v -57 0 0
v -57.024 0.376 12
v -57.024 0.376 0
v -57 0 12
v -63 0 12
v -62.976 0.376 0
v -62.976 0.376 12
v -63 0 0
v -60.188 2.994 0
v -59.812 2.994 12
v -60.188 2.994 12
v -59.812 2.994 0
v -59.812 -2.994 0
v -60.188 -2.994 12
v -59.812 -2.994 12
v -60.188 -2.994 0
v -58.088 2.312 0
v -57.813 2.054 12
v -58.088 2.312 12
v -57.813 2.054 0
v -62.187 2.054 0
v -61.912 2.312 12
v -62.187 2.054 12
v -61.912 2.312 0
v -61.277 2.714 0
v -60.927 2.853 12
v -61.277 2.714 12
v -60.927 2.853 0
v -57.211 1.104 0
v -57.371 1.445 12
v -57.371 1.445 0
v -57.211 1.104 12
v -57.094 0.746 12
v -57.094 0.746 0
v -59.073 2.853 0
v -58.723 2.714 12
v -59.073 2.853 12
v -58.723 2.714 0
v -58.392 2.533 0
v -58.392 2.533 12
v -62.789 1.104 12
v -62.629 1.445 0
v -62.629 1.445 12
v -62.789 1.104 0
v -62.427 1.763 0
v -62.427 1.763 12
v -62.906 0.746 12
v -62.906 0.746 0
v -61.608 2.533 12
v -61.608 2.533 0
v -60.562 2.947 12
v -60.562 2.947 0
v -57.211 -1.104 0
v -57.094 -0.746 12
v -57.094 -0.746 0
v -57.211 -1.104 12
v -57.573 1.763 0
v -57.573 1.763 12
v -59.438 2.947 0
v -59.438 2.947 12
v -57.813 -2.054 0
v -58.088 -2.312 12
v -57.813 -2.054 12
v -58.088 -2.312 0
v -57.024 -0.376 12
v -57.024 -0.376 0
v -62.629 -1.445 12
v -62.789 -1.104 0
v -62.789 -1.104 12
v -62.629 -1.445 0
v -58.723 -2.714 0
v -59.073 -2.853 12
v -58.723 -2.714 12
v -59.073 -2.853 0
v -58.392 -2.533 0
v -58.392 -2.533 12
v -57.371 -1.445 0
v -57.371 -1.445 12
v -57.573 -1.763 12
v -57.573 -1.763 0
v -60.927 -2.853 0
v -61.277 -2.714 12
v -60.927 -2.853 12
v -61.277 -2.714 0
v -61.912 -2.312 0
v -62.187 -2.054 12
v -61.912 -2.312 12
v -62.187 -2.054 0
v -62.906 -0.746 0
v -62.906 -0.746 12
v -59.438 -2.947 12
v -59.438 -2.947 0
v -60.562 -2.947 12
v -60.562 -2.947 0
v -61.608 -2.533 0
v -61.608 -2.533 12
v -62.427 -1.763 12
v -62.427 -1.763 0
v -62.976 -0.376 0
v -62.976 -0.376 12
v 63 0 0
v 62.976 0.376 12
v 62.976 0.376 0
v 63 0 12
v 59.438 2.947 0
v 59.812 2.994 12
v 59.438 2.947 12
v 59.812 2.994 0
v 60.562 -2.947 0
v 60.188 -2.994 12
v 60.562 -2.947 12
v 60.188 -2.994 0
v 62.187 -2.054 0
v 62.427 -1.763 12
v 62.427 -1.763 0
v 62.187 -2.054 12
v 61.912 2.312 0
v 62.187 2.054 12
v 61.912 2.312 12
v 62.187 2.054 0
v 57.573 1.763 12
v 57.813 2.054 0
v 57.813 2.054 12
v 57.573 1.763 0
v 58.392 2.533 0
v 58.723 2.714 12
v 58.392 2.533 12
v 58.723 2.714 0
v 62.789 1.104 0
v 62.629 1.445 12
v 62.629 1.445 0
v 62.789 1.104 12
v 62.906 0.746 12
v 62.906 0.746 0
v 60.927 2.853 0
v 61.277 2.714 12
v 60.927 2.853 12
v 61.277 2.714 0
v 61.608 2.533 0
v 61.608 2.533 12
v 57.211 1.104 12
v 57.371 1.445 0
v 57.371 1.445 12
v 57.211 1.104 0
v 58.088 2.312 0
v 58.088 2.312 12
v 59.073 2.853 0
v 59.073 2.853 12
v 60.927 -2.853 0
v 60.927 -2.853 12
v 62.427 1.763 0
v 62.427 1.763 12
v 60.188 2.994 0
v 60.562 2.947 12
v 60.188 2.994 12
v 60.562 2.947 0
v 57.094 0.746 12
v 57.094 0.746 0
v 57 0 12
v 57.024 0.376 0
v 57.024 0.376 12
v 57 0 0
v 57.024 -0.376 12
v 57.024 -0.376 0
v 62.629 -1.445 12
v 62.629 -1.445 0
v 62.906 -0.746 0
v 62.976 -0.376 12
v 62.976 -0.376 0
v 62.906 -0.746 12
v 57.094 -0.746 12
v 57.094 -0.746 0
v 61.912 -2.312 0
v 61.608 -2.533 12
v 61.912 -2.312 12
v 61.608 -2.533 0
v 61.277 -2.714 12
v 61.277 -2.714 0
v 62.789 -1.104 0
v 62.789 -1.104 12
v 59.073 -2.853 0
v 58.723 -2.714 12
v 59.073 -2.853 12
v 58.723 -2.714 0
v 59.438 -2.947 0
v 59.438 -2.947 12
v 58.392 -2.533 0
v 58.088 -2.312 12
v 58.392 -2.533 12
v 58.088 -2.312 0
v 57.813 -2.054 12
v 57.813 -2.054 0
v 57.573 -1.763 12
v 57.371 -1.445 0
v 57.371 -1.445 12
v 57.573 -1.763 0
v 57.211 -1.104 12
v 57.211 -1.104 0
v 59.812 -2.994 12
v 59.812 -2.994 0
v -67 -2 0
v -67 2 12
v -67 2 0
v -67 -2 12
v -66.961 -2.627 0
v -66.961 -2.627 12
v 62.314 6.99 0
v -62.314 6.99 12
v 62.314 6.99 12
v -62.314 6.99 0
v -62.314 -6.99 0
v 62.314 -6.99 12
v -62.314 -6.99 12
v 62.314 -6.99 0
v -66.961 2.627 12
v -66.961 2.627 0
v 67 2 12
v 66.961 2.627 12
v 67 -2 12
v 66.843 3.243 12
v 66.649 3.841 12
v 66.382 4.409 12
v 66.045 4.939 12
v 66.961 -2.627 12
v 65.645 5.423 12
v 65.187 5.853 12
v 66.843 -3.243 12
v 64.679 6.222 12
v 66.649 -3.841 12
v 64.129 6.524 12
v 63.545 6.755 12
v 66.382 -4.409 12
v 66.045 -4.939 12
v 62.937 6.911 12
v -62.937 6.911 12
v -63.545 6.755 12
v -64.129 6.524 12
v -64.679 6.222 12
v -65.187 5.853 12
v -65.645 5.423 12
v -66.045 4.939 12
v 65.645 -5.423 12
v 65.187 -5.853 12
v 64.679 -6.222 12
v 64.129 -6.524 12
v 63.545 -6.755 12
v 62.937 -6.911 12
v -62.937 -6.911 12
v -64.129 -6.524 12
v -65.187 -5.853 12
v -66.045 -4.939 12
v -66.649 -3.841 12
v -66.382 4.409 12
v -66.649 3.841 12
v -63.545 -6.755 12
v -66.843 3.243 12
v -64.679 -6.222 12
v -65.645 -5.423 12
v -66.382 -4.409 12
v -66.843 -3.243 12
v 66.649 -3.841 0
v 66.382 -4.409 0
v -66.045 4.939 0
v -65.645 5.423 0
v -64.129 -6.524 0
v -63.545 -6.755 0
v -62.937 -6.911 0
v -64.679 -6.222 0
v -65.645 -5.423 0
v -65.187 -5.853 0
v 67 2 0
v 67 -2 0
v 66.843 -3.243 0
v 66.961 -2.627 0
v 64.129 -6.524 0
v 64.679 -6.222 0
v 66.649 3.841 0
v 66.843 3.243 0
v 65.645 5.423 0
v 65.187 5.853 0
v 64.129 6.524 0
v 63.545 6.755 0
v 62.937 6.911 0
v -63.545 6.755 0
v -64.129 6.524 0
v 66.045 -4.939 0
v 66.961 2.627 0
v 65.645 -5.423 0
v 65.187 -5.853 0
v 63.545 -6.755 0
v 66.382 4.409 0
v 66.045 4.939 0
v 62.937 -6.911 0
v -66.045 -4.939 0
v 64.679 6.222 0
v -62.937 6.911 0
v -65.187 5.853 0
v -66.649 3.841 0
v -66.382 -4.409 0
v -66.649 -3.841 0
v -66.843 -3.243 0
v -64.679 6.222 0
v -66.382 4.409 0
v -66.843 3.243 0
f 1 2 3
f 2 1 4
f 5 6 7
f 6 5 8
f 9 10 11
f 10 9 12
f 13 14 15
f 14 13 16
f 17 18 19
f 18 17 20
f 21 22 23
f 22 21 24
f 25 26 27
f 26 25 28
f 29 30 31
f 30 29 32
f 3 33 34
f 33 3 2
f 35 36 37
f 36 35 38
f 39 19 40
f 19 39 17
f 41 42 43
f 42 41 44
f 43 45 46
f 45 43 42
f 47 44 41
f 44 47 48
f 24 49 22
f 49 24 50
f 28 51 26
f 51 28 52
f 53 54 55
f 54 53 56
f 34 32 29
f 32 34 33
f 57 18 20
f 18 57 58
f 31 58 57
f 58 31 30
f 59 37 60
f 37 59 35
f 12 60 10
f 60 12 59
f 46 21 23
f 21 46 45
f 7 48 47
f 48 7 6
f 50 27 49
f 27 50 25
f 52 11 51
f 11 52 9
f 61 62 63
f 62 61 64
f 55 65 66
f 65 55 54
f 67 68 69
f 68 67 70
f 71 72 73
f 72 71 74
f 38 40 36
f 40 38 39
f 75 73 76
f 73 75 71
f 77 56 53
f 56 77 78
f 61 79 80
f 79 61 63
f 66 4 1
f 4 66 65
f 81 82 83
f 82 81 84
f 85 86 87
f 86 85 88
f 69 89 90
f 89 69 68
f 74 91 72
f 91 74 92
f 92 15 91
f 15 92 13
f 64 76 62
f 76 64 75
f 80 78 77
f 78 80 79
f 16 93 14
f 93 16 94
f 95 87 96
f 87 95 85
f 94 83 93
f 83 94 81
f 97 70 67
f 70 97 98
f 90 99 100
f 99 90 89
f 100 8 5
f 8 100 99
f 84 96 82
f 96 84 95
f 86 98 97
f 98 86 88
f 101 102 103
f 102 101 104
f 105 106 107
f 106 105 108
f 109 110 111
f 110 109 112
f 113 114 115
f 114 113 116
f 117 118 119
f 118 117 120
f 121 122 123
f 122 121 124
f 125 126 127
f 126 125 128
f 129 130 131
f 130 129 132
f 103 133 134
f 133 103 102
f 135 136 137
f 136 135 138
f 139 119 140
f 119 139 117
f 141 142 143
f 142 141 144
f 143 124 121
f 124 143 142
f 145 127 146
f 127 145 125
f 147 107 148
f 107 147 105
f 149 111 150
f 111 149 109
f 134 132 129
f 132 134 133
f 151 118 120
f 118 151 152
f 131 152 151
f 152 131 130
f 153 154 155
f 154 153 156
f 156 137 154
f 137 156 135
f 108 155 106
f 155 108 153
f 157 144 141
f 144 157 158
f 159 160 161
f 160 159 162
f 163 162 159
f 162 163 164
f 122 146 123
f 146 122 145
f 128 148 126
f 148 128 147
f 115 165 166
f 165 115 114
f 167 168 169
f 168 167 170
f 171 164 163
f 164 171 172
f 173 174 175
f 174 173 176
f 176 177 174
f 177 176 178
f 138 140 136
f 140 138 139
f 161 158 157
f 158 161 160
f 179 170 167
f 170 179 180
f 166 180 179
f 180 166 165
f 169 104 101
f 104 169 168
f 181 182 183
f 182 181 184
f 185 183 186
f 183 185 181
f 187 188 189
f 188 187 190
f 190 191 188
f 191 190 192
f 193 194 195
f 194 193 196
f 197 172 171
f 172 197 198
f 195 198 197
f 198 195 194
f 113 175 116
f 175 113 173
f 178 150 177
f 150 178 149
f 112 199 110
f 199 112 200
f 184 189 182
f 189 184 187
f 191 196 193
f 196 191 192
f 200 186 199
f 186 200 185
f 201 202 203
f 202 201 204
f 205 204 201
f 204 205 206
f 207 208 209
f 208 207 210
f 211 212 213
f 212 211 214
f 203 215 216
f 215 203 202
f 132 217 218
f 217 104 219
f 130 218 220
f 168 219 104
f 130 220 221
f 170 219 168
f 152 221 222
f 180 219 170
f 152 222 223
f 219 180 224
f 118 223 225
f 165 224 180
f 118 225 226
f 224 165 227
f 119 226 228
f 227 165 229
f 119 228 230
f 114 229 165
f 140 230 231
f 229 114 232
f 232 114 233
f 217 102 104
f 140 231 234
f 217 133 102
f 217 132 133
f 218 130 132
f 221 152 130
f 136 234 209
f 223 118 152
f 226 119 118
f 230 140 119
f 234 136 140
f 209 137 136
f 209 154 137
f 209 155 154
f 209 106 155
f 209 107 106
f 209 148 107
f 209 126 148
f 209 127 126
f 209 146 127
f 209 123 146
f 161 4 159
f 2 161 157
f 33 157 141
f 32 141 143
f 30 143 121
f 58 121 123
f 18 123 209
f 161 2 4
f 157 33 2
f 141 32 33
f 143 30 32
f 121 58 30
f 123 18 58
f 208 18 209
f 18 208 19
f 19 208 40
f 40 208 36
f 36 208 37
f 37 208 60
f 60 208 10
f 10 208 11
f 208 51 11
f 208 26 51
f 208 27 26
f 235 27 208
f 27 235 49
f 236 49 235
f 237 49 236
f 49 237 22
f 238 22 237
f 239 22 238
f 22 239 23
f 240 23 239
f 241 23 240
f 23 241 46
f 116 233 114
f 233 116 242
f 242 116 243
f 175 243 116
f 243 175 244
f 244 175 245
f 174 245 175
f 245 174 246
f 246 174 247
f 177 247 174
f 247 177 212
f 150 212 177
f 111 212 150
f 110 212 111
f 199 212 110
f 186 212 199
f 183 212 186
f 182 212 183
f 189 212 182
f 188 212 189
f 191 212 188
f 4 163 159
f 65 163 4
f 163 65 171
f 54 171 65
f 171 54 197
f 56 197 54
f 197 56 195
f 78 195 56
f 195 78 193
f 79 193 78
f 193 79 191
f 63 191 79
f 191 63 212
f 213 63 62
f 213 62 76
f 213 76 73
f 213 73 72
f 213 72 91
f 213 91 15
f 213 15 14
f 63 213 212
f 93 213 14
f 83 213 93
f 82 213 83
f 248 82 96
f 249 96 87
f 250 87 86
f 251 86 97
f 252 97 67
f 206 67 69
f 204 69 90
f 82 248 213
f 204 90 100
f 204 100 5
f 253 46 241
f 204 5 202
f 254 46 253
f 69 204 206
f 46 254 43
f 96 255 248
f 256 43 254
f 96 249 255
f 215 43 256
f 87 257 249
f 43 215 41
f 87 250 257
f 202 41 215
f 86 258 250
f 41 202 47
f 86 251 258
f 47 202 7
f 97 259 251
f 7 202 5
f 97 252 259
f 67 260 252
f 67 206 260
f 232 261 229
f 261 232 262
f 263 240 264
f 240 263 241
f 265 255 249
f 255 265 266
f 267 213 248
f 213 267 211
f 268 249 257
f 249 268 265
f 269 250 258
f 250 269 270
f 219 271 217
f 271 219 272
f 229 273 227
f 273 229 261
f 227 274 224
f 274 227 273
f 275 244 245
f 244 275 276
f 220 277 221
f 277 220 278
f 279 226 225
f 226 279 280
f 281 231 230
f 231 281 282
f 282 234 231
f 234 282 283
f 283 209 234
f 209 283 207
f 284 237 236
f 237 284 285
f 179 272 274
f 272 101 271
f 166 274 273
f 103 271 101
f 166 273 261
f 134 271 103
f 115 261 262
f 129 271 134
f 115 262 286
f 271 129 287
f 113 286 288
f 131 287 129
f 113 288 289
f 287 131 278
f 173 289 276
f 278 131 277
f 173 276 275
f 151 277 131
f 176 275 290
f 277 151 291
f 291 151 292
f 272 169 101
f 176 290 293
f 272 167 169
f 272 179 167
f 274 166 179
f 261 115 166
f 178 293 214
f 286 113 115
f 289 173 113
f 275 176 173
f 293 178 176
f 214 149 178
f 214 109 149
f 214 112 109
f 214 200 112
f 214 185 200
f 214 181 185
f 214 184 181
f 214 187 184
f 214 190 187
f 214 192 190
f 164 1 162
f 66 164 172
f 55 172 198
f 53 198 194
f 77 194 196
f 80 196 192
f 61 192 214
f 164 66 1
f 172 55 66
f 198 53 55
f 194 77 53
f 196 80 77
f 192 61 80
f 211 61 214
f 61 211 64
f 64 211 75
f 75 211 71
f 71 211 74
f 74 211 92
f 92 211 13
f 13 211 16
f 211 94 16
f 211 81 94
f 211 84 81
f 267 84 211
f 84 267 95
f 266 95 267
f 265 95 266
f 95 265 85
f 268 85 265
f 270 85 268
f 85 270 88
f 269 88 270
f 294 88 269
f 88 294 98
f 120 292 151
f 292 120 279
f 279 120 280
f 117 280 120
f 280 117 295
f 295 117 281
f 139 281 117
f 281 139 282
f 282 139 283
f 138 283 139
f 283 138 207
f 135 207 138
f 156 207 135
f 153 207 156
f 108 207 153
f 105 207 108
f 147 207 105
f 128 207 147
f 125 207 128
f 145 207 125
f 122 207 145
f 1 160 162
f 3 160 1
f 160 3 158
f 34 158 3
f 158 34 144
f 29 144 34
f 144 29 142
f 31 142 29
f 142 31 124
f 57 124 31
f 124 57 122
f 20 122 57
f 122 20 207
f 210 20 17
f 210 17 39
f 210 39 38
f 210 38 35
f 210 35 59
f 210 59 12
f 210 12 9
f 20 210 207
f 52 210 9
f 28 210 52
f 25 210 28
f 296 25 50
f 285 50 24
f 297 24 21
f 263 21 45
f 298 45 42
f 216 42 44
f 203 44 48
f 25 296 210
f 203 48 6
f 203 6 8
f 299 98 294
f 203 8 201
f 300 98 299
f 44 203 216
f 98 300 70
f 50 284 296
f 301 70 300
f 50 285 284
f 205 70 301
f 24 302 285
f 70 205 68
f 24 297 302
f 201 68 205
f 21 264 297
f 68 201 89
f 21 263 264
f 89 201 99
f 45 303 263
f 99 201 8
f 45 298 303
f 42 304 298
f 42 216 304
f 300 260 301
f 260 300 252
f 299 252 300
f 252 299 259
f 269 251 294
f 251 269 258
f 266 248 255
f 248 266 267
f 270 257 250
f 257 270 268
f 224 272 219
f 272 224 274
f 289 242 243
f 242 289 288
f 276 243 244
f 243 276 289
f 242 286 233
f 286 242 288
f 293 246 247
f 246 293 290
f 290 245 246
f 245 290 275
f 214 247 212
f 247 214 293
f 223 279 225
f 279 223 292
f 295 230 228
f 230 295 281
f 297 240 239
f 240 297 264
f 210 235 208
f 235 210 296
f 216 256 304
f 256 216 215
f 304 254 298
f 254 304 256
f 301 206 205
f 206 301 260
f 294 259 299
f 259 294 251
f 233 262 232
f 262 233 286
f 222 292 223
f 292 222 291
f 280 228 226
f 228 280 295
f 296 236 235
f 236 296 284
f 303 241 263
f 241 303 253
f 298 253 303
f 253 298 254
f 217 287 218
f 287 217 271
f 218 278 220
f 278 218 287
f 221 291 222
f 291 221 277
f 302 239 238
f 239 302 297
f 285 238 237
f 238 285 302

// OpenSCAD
$fn = 50;


difference() {
	union() {
		hull() {
			translate(v = [-62.0000000000, 2.0000000000, 0]) {
				cylinder(h = 12, r = 5);
			}
			translate(v = [62.0000000000, 2.0000000000, 0]) {
				cylinder(h = 12, r = 5);
			}
			translate(v = [-62.0000000000, -2.0000000000, 0]) {
				cylinder(h = 12, r = 5);
			}
			translate(v = [62.0000000000, -2.0000000000, 0]) {
				cylinder(h = 12, r = 5);
			}
		}
	}
	union() {
		translate(v = [-60.0000000000, 0.0000000000, -100.0000000000]) {
			cylinder(h = 200, r = 3.0000000000);
		}
		translate(v = [-60.0000000000, 0.0000000000, -100.0000000000]) {
			cylinder(h = 200, r = 3.0000000000);
		}
		translate(v = [60.0000000000, 0.0000000000, -100.0000000000]) {
			cylinder(h = 200, r = 3.0000000000);
		}
		translate(v = [60.0000000000, 0.0000000000, -100.0000000000]) {
			cylinder(h = 200, r = 3.0000000000);
		}
	}
}
